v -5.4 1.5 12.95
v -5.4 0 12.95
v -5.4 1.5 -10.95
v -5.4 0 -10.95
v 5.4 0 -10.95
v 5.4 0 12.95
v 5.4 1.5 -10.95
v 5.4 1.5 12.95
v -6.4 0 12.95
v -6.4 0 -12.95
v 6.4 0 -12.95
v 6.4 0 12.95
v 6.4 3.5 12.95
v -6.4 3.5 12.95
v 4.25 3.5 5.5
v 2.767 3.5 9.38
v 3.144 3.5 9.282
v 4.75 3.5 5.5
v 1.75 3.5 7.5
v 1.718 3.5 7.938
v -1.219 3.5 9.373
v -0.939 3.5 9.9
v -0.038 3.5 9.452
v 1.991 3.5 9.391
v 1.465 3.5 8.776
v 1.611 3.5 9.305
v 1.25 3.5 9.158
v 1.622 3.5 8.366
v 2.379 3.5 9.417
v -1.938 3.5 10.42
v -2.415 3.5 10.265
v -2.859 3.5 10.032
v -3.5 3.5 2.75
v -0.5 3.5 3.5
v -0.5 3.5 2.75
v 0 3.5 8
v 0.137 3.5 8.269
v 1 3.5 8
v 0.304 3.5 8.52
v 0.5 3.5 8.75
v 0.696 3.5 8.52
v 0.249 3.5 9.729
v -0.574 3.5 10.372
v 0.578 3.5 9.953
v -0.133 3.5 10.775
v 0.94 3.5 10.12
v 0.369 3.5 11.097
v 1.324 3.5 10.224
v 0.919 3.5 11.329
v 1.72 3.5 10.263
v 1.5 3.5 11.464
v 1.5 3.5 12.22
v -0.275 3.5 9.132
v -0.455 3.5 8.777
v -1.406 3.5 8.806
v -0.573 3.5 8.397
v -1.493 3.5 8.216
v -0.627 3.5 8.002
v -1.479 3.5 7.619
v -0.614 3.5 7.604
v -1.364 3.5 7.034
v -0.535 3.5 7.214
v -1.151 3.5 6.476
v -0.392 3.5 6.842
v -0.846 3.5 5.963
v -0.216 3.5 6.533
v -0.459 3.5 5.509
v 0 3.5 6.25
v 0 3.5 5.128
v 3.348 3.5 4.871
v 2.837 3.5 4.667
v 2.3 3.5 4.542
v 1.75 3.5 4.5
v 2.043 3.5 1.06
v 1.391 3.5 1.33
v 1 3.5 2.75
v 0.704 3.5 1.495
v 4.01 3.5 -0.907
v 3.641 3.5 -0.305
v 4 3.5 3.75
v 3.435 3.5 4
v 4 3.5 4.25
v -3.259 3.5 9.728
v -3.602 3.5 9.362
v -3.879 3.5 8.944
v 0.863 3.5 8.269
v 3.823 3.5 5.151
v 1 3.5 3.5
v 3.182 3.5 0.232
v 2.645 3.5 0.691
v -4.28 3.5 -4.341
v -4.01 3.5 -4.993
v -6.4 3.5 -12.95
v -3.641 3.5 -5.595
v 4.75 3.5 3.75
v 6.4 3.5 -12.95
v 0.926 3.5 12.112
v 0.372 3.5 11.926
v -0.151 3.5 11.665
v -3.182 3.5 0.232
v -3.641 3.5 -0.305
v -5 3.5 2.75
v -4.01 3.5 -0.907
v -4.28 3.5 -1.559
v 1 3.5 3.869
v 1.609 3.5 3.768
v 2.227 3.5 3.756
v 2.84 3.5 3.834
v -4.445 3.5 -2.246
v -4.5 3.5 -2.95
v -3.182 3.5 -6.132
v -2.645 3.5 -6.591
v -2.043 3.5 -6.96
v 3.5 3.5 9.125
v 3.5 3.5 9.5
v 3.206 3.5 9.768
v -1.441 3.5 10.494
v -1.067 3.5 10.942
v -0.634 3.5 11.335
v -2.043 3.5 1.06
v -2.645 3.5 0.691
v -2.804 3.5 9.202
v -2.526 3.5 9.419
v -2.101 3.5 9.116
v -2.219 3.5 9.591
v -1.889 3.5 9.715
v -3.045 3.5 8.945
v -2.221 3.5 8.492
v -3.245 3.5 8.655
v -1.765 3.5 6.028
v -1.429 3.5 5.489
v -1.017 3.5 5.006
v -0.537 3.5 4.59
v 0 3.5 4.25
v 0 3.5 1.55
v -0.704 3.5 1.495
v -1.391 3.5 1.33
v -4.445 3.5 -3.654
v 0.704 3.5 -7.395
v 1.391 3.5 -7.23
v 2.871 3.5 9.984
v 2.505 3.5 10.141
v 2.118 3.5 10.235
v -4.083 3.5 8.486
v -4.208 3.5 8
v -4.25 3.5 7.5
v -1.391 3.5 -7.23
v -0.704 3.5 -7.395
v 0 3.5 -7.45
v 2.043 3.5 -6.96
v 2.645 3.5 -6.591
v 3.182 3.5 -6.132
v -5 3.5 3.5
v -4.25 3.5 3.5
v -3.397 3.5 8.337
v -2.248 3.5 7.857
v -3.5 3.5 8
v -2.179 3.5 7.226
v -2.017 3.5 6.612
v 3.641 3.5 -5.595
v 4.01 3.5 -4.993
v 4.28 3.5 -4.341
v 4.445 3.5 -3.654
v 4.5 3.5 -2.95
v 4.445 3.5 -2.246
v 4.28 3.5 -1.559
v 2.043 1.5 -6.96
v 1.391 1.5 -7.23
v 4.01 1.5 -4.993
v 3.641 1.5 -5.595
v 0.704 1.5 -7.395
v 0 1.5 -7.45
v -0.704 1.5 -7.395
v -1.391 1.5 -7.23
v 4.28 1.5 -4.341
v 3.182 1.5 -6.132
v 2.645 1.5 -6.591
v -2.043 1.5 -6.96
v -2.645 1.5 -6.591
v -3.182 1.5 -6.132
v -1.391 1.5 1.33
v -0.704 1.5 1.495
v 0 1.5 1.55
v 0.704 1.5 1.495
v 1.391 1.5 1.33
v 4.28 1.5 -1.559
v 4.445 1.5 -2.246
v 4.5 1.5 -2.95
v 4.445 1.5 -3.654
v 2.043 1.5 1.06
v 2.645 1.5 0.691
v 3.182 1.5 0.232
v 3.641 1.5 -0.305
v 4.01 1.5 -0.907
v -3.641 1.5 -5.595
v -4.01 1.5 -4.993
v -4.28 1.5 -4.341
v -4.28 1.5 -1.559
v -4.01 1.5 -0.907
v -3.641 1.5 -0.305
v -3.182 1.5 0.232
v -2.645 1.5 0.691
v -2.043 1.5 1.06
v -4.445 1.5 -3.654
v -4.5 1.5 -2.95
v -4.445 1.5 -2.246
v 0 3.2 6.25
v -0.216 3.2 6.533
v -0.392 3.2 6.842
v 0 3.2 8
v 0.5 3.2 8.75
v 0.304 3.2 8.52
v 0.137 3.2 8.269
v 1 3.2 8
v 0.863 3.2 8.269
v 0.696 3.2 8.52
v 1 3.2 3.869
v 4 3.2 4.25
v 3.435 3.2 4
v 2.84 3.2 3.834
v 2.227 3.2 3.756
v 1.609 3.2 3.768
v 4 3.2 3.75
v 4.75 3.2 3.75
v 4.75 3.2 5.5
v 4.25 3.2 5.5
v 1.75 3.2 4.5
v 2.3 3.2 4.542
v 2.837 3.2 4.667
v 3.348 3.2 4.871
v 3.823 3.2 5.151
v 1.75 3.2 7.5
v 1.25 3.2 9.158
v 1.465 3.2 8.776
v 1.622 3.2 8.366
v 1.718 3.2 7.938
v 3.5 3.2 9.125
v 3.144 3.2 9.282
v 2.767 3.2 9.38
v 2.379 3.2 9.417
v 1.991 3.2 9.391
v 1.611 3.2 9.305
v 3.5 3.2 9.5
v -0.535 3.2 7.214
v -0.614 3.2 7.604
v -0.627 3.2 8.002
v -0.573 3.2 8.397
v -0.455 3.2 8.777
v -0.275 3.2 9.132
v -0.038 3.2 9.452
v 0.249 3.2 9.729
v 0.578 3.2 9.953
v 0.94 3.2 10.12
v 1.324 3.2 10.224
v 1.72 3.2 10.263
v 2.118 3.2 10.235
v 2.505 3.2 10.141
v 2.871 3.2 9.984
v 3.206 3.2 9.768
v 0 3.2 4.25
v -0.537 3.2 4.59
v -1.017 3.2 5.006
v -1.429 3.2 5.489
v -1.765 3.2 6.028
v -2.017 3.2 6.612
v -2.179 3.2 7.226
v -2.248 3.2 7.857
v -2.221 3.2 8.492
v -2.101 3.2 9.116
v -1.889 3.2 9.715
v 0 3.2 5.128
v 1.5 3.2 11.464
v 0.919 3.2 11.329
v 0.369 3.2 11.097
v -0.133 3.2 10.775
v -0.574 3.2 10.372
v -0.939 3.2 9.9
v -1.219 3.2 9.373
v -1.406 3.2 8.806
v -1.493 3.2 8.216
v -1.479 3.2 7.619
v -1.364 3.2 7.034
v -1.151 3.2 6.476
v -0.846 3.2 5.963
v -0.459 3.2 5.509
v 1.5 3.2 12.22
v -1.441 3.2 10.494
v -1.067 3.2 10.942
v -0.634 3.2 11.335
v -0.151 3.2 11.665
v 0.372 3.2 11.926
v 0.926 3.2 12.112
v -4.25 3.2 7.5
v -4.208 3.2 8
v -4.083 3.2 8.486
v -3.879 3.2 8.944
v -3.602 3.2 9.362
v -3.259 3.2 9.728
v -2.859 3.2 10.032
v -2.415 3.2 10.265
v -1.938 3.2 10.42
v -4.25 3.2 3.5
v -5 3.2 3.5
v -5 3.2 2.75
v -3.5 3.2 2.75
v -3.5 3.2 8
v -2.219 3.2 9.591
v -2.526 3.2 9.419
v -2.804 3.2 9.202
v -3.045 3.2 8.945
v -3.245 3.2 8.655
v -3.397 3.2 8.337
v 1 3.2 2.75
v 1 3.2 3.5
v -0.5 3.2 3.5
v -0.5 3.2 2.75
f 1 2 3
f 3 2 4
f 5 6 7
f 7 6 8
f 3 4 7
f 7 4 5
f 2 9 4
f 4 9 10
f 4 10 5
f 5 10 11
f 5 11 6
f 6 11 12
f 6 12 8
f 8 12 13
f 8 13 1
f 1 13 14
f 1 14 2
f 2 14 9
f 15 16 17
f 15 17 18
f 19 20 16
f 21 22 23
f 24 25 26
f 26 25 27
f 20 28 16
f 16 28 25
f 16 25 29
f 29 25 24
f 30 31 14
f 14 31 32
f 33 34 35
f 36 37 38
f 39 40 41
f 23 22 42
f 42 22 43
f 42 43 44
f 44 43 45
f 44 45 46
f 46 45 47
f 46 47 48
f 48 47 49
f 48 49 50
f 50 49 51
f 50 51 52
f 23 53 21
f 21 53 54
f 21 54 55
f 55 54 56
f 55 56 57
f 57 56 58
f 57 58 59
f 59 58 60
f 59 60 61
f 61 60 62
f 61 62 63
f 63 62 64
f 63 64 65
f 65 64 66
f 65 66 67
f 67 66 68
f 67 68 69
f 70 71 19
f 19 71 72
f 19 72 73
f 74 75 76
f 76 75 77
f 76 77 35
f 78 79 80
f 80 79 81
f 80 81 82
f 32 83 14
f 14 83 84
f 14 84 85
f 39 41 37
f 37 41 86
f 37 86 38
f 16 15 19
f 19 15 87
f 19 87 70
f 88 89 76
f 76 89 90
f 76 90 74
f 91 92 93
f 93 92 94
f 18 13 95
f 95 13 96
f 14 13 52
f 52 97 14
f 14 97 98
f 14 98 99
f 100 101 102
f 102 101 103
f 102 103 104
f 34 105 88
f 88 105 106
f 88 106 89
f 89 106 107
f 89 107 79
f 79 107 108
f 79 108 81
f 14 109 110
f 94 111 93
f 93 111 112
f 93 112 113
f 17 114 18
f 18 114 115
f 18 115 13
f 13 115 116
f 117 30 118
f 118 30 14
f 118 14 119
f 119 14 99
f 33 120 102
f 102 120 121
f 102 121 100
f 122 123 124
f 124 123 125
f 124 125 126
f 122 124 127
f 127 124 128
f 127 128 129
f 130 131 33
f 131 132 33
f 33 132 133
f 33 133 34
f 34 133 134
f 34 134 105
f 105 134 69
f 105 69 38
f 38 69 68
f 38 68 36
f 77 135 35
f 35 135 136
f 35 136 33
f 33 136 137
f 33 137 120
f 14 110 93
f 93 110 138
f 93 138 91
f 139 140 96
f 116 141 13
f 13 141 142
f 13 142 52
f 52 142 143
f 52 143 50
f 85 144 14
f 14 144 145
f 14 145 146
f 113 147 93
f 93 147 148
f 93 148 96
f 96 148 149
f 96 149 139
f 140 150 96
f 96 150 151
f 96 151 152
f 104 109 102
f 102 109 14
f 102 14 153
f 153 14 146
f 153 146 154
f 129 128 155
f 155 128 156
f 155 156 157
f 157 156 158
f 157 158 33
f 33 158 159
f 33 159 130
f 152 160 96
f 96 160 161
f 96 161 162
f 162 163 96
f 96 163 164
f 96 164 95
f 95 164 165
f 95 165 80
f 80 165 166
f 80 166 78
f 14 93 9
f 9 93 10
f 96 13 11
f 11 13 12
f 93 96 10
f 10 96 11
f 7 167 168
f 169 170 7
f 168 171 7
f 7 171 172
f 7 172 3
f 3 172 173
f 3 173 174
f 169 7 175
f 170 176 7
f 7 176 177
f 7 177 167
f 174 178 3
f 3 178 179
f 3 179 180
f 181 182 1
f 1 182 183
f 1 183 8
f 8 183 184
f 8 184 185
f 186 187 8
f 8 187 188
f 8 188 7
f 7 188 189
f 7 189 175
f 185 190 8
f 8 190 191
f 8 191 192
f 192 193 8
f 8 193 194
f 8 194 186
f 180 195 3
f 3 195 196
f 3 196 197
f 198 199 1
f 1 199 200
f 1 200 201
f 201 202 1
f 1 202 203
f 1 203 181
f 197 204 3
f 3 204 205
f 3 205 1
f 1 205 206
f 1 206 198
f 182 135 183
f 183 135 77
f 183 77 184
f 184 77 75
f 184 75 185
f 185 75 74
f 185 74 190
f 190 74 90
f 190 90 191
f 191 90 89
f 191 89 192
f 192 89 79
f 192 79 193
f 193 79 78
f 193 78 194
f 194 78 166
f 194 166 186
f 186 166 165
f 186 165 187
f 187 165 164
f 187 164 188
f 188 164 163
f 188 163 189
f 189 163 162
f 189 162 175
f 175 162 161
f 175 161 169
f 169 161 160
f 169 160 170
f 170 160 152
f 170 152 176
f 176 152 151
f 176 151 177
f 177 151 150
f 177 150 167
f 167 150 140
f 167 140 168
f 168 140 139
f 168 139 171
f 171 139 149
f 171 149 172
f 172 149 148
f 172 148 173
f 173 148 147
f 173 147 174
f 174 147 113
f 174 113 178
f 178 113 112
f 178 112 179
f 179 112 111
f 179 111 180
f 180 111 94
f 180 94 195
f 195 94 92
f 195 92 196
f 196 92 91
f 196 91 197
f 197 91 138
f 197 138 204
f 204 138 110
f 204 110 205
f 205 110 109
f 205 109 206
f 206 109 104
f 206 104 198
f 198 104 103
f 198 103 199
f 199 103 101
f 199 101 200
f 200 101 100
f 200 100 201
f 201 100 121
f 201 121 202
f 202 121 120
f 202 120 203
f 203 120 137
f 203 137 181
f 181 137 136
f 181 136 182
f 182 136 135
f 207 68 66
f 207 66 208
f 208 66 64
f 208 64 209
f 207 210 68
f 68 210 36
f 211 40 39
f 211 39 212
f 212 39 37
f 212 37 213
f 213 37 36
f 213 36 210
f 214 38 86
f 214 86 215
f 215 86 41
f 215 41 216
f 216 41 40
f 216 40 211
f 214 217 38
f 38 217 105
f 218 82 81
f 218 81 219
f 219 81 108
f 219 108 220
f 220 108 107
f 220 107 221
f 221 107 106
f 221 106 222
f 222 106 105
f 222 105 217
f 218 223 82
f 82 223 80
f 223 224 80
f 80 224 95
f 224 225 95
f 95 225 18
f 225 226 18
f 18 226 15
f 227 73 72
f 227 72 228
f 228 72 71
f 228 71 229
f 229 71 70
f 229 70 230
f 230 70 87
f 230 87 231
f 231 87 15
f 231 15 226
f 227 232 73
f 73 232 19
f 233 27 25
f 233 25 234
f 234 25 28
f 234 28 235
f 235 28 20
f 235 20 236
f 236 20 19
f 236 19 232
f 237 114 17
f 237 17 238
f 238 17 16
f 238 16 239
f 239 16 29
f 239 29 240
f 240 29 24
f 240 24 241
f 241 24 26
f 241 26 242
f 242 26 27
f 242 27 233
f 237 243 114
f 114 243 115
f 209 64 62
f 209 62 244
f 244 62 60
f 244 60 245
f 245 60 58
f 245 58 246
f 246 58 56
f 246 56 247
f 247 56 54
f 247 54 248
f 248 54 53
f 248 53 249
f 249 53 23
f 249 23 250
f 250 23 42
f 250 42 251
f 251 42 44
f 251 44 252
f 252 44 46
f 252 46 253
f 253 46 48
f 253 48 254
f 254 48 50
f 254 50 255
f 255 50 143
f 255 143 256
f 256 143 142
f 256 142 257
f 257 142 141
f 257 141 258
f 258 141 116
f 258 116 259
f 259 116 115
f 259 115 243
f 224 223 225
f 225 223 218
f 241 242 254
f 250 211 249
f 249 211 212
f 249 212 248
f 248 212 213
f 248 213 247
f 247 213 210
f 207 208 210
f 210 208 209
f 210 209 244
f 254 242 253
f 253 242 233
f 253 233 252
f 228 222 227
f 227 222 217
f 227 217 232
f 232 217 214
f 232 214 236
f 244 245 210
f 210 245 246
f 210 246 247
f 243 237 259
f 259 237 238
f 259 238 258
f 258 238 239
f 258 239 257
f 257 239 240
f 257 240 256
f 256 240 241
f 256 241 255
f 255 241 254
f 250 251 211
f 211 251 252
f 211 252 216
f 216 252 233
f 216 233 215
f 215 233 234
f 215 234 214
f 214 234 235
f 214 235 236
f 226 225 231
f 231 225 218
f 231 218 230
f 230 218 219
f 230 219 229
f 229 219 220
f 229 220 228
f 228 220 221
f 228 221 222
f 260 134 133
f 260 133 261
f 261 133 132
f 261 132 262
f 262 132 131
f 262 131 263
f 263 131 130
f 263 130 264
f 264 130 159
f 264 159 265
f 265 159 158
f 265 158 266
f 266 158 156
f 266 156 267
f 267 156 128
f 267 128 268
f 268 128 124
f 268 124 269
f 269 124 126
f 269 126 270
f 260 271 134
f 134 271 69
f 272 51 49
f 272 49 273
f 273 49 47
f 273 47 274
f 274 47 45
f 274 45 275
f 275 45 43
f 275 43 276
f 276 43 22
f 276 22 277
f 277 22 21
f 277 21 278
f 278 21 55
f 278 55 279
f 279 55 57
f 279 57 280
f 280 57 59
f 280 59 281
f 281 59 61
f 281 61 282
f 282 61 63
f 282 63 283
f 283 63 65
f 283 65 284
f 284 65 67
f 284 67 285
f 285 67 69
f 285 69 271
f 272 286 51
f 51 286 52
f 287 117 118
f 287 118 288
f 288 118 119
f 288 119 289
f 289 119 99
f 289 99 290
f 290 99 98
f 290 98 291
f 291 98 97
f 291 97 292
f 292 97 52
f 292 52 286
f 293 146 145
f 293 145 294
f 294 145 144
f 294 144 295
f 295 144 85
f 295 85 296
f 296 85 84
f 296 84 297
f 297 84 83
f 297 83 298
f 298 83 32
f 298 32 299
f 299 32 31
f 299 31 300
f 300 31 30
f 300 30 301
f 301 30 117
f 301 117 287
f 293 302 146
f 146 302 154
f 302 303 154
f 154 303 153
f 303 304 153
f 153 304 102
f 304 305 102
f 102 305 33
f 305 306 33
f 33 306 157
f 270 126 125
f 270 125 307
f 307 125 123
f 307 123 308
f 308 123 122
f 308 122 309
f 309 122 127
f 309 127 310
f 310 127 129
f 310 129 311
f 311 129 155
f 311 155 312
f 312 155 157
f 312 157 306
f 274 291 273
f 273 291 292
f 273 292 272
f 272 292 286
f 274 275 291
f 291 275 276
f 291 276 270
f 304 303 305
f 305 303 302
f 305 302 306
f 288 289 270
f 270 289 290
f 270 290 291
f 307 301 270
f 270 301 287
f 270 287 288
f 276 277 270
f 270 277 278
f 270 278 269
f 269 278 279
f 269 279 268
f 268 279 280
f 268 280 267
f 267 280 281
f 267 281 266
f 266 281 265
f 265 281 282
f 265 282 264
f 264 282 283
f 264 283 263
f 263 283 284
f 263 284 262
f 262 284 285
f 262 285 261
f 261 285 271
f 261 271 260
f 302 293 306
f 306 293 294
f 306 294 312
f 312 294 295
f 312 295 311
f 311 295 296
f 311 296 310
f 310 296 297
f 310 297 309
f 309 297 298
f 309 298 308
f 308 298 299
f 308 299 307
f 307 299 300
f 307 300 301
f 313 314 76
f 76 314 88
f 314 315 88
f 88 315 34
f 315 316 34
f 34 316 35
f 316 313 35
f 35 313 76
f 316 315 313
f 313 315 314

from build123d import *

# Parameters (mm, degrees)
SKETCH1_W           = 12.8
SKETCH1_H           = 25.9
SKETCH1_W_2         = 10.8
SKETCH1_H_2         = 21.9
BOSS_EXTRUDE1_DEPTH = 3.5
SKETCH3_W           = 10.8
SKETCH3_H           = 1.5
CUT_EXTRUDE1_DEPTH  = 15.863125512
SKETCH4_W           = 10.8
SKETCH4_H           = 21.9
SKETCH4_R           = 4.5
BOSS_EXTRUDE2_DEPTH = 2
SKETCH5_W           = 1.5
SKETCH5_H           = 0.75
CUT_EXTRUDE2_DEPTH  = 0.3


with BuildPart() as part:
    # Sketch1 → Boss-Extrude1 (new body)
    with BuildSketch(Plane(origin=(0, 0, 0), x_dir=(1, 0, 0), z_dir=(0, 1, 0))):
        Rectangle(SKETCH1_W, SKETCH1_H)
        Rectangle(SKETCH1_W_2, SKETCH1_H_2, mode=Mode.SUBTRACT)
    extrude(amount=BOSS_EXTRUDE1_DEPTH)

    # Sketch3 → Cut-Extrude1 (cut, through all)
    with BuildSketch(Plane.XY):
        with Locations((0, 0.75)):
            Rectangle(SKETCH3_W, SKETCH3_H)
    extrude(amount=CUT_EXTRUDE1_DEPTH, mode=Mode.SUBTRACT)

    # Sketch4 → Boss-Extrude2 (add)
    with BuildSketch(Plane(origin=(0, 3.5, 0), x_dir=(1, 0, 0), z_dir=(0, 1, 0))):
        Rectangle(SKETCH4_W, SKETCH4_H)
        with Locations(Location((0, 2.95, 0), (0, 0, 270))):
            Circle(SKETCH4_R, mode=Mode.SUBTRACT)
    extrude(amount=-BOSS_EXTRUDE2_DEPTH)

    # Sketch5 → Cut-Extrude2 (cut)
    with BuildSketch(Plane(origin=(0, 3.5, 0), x_dir=(1, 0, 0), z_dir=(0, 1, 0))):
        with BuildLine():
            Line((0, -6.25), (0, -8))
            ThreePointArc((0, -8), (0.216665991, -8.397222673), (0.5, -8.75))
            ThreePointArc((0.5, -8.75), (0.783334009, -8.397222673), (1, -8))
            Line((1, -8), (1, -3.86932209))
            ThreePointArc((1, -3.86932209), (2.535003662, -3.783808462), (4, -4.25))
            Line((4, -4.25), (4, -3.75))
            Line((4, -3.75), (4.75, -3.75))
            Line((4.75, -3.75), (4.75, -5.5))
            Line((4.75, -5.5), (4.25, -5.5))
            ThreePointArc((4.25, -5.5), (3.096291202, -4.759271996), (1.75, -4.5))
            Line((1.75, -4.5), (1.75, -7.5))
            ThreePointArc((1.75, -7.5), (1.622281323, -8.366025404), (1.25, -9.158312395))
            ThreePointArc((1.25, -9.158312395), (2.379117111, -9.416714281), (3.5, -9.124655157))
            Line((3.5, -9.124655157), (3.5, -9.5))
            ThreePointArc((3.5, -9.5), (0.408776976, -9.847754603), (-0.391896371, -6.841841224))
            ThreePointArc((-0.391896371, -6.841841224), (-0.215797248, -6.532777264), (0, -6.25))
        make_face()
        with BuildLine():
            Line((-4.25, -3.5), (-4.25, -7.5))
            ThreePointArc((-4.25, -7.5), (-3.437933175, -9.552546813), (-1.44136772, -10.493890178))
            ThreePointArc((-1.44136772, -10.493890178), (-0.151482732, -11.665190589), (1.5, -12.220485754))
            Line((1.5, -12.220485754), (1.5, -11.464101615))
            ThreePointArc((1.5, -11.464101615), (-1.405868052, -8.80626473), (0, -5.127718677))
            Line((0, -5.127718677), (0, -4.25))
            ThreePointArc((0, -4.25), (-2.016828361, -6.611623278), (-1.88878465, -9.714600228))
            ThreePointArc((-1.88878465, -9.714600228), (-2.929652546, -9.0783749), (-3.5, -8))
            Line((-3.5, -8), (-3.5, -2.75))
            Line((-3.5, -2.75), (-5, -2.75))
            Line((-5, -2.75), (-5, -3.5))
            Line((-5, -3.5), (-4.25, -3.5))
        make_face()
        with Locations((0.25, -3.125)):
            Rectangle(SKETCH5_W, SKETCH5_H)
    extrude(amount=-CUT_EXTRUDE2_DEPTH, mode=Mode.SUBTRACT)


solid = part.part
